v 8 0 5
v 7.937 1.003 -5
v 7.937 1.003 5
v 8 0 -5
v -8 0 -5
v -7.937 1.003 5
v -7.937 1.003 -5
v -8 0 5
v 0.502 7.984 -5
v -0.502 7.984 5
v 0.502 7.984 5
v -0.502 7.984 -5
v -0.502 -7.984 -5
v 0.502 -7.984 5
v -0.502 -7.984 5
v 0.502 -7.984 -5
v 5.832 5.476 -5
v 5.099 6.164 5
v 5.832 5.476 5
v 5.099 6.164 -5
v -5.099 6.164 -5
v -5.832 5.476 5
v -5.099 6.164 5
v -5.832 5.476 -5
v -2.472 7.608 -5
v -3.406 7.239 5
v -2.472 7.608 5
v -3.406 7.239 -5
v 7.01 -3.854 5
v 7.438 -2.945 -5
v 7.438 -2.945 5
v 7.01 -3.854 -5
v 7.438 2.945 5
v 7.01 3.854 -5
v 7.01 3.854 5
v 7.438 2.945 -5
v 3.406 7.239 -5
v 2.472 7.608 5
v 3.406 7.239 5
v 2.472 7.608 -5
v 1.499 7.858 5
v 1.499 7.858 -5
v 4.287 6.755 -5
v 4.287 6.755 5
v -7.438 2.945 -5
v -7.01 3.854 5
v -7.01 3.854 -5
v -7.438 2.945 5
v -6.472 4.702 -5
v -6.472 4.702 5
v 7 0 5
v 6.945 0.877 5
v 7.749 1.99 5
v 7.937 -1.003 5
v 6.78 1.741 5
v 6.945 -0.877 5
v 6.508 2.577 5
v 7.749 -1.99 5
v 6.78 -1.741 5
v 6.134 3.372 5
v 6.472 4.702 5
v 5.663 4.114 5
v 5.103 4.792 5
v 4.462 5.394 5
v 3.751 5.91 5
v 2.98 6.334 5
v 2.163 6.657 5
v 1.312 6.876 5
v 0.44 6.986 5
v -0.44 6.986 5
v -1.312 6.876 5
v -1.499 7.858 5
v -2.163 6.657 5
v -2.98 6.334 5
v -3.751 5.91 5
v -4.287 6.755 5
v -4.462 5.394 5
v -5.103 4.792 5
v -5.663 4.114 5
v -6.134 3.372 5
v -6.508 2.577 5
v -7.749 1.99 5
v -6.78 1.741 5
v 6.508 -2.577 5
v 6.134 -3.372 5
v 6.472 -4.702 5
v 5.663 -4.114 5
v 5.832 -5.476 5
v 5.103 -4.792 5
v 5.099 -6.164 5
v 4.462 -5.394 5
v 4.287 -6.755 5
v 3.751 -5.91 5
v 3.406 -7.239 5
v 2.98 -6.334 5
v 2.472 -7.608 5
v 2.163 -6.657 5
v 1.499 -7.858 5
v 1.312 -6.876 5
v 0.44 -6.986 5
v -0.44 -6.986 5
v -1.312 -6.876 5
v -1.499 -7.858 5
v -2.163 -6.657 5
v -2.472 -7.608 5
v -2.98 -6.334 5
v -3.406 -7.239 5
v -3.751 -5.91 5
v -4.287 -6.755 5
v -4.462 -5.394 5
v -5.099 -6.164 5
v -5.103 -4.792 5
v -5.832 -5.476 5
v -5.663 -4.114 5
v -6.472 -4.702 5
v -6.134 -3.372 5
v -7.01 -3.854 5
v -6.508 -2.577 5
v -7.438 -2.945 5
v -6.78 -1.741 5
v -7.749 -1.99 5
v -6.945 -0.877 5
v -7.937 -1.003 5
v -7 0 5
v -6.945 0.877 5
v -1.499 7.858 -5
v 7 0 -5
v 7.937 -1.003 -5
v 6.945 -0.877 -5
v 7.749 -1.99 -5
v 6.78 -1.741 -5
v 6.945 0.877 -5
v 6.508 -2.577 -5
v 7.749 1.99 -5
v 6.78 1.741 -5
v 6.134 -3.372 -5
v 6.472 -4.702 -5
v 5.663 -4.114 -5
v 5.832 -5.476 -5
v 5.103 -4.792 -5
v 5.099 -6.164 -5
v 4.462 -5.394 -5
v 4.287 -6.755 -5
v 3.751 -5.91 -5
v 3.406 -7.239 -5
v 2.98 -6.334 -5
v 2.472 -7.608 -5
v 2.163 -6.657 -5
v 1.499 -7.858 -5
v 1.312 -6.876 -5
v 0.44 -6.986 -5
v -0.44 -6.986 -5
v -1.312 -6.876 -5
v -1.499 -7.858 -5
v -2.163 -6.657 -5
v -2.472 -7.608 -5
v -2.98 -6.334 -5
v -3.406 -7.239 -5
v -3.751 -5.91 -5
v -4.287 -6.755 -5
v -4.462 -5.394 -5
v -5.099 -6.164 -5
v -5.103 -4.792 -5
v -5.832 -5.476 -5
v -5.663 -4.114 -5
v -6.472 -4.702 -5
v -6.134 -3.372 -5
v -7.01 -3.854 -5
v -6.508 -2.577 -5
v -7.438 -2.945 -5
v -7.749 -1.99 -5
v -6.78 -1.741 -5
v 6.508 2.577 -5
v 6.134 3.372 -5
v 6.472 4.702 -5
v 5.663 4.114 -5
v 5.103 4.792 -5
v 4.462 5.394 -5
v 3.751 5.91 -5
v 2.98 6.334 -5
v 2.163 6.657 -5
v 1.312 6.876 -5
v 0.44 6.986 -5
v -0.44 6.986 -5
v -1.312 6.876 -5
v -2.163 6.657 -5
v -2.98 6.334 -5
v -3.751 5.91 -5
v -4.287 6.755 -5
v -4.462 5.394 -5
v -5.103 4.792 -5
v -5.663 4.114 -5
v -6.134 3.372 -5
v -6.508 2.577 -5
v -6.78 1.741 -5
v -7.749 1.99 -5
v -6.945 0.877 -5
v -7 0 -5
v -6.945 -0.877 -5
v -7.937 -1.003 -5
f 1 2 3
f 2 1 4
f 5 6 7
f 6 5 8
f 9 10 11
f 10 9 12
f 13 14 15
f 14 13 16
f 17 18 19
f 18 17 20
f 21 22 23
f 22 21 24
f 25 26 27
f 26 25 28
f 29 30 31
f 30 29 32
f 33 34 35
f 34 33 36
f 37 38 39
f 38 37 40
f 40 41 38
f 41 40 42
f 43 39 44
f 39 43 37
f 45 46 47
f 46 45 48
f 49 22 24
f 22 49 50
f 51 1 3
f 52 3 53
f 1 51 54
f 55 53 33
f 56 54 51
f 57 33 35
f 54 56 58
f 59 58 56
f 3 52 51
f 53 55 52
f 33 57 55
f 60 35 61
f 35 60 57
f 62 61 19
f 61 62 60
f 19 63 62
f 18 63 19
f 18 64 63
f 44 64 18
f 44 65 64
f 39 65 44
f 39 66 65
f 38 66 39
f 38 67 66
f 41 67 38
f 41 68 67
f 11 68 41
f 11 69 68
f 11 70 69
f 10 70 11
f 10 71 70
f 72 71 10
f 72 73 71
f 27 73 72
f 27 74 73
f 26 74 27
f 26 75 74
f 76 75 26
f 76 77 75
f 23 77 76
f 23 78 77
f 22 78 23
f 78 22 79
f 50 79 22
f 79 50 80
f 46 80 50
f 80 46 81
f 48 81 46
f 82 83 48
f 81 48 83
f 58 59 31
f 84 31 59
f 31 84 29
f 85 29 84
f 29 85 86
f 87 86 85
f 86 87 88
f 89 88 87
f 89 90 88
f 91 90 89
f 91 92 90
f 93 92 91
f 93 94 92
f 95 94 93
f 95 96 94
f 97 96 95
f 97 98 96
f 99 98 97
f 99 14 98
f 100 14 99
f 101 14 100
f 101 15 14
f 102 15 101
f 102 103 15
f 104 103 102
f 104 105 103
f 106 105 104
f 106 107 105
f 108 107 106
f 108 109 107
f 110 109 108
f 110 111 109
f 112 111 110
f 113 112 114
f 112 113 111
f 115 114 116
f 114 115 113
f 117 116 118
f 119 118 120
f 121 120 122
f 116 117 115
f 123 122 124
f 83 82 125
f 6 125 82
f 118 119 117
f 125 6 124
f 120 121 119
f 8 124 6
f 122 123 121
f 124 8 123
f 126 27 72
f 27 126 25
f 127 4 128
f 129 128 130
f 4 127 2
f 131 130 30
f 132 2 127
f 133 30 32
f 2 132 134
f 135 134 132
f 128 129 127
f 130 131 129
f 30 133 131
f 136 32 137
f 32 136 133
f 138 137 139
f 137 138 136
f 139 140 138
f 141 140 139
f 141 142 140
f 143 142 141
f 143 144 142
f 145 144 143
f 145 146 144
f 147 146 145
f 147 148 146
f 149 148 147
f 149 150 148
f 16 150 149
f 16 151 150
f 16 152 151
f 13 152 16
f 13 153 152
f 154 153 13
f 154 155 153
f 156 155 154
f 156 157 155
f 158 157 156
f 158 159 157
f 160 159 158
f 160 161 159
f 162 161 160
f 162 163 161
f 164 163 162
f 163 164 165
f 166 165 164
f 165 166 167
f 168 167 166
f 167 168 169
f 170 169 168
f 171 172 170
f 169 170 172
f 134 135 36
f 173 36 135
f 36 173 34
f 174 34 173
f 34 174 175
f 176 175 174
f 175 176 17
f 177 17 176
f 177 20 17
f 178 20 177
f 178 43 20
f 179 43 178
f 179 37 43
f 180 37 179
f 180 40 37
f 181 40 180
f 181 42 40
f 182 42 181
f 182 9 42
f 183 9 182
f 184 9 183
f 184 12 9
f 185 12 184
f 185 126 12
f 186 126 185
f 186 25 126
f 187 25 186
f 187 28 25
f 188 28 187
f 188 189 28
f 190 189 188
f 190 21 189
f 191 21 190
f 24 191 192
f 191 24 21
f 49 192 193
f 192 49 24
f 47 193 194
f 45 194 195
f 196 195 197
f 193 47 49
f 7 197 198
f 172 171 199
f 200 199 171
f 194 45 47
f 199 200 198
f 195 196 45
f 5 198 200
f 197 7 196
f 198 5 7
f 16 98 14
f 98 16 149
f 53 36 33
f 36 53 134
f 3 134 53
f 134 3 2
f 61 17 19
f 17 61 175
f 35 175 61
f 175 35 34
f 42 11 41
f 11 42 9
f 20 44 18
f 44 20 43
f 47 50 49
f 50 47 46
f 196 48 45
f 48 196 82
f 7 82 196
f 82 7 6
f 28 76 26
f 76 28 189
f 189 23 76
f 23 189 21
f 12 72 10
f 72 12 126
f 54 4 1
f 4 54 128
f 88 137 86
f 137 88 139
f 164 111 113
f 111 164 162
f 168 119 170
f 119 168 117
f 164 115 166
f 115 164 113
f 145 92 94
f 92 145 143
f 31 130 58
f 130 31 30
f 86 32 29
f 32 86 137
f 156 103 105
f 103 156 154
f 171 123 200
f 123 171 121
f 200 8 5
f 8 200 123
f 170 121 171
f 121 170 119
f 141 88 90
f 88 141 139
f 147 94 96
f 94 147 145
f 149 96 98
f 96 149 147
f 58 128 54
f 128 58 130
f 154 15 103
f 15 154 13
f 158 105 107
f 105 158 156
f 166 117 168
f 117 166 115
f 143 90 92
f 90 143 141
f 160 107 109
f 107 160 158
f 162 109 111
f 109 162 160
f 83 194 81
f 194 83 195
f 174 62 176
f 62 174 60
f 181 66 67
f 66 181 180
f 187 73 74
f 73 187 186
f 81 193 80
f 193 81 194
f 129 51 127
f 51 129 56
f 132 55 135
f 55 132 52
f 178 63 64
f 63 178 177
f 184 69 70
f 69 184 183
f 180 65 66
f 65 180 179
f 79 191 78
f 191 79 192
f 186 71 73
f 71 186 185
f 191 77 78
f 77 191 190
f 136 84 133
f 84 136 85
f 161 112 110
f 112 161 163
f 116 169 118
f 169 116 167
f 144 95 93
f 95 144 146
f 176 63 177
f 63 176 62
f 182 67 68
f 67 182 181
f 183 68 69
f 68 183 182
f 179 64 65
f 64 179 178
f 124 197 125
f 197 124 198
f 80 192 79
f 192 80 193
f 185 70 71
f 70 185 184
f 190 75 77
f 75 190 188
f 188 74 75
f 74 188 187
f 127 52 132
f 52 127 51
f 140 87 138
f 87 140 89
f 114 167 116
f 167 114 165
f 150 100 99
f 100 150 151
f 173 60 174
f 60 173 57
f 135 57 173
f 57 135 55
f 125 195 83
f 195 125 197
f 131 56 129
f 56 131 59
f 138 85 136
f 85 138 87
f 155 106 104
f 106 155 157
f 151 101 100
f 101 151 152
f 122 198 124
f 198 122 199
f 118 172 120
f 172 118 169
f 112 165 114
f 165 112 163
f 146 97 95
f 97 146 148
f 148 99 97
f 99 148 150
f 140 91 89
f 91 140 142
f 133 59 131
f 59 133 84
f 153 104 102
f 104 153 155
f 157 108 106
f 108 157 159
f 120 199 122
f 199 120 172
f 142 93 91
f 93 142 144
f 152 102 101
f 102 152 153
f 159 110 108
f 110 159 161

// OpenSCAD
$fn = 50;


difference() {
	union() {
		translate(v = [0, 0, -5.0000000000]) {
			cylinder(h = 10, r = 8.0000000000);
		}
	}
	union() {
		translate(v = [0, 0, -100.0000000000]) {
			cylinder(h = 200, r = 7);
		}
	}
}
